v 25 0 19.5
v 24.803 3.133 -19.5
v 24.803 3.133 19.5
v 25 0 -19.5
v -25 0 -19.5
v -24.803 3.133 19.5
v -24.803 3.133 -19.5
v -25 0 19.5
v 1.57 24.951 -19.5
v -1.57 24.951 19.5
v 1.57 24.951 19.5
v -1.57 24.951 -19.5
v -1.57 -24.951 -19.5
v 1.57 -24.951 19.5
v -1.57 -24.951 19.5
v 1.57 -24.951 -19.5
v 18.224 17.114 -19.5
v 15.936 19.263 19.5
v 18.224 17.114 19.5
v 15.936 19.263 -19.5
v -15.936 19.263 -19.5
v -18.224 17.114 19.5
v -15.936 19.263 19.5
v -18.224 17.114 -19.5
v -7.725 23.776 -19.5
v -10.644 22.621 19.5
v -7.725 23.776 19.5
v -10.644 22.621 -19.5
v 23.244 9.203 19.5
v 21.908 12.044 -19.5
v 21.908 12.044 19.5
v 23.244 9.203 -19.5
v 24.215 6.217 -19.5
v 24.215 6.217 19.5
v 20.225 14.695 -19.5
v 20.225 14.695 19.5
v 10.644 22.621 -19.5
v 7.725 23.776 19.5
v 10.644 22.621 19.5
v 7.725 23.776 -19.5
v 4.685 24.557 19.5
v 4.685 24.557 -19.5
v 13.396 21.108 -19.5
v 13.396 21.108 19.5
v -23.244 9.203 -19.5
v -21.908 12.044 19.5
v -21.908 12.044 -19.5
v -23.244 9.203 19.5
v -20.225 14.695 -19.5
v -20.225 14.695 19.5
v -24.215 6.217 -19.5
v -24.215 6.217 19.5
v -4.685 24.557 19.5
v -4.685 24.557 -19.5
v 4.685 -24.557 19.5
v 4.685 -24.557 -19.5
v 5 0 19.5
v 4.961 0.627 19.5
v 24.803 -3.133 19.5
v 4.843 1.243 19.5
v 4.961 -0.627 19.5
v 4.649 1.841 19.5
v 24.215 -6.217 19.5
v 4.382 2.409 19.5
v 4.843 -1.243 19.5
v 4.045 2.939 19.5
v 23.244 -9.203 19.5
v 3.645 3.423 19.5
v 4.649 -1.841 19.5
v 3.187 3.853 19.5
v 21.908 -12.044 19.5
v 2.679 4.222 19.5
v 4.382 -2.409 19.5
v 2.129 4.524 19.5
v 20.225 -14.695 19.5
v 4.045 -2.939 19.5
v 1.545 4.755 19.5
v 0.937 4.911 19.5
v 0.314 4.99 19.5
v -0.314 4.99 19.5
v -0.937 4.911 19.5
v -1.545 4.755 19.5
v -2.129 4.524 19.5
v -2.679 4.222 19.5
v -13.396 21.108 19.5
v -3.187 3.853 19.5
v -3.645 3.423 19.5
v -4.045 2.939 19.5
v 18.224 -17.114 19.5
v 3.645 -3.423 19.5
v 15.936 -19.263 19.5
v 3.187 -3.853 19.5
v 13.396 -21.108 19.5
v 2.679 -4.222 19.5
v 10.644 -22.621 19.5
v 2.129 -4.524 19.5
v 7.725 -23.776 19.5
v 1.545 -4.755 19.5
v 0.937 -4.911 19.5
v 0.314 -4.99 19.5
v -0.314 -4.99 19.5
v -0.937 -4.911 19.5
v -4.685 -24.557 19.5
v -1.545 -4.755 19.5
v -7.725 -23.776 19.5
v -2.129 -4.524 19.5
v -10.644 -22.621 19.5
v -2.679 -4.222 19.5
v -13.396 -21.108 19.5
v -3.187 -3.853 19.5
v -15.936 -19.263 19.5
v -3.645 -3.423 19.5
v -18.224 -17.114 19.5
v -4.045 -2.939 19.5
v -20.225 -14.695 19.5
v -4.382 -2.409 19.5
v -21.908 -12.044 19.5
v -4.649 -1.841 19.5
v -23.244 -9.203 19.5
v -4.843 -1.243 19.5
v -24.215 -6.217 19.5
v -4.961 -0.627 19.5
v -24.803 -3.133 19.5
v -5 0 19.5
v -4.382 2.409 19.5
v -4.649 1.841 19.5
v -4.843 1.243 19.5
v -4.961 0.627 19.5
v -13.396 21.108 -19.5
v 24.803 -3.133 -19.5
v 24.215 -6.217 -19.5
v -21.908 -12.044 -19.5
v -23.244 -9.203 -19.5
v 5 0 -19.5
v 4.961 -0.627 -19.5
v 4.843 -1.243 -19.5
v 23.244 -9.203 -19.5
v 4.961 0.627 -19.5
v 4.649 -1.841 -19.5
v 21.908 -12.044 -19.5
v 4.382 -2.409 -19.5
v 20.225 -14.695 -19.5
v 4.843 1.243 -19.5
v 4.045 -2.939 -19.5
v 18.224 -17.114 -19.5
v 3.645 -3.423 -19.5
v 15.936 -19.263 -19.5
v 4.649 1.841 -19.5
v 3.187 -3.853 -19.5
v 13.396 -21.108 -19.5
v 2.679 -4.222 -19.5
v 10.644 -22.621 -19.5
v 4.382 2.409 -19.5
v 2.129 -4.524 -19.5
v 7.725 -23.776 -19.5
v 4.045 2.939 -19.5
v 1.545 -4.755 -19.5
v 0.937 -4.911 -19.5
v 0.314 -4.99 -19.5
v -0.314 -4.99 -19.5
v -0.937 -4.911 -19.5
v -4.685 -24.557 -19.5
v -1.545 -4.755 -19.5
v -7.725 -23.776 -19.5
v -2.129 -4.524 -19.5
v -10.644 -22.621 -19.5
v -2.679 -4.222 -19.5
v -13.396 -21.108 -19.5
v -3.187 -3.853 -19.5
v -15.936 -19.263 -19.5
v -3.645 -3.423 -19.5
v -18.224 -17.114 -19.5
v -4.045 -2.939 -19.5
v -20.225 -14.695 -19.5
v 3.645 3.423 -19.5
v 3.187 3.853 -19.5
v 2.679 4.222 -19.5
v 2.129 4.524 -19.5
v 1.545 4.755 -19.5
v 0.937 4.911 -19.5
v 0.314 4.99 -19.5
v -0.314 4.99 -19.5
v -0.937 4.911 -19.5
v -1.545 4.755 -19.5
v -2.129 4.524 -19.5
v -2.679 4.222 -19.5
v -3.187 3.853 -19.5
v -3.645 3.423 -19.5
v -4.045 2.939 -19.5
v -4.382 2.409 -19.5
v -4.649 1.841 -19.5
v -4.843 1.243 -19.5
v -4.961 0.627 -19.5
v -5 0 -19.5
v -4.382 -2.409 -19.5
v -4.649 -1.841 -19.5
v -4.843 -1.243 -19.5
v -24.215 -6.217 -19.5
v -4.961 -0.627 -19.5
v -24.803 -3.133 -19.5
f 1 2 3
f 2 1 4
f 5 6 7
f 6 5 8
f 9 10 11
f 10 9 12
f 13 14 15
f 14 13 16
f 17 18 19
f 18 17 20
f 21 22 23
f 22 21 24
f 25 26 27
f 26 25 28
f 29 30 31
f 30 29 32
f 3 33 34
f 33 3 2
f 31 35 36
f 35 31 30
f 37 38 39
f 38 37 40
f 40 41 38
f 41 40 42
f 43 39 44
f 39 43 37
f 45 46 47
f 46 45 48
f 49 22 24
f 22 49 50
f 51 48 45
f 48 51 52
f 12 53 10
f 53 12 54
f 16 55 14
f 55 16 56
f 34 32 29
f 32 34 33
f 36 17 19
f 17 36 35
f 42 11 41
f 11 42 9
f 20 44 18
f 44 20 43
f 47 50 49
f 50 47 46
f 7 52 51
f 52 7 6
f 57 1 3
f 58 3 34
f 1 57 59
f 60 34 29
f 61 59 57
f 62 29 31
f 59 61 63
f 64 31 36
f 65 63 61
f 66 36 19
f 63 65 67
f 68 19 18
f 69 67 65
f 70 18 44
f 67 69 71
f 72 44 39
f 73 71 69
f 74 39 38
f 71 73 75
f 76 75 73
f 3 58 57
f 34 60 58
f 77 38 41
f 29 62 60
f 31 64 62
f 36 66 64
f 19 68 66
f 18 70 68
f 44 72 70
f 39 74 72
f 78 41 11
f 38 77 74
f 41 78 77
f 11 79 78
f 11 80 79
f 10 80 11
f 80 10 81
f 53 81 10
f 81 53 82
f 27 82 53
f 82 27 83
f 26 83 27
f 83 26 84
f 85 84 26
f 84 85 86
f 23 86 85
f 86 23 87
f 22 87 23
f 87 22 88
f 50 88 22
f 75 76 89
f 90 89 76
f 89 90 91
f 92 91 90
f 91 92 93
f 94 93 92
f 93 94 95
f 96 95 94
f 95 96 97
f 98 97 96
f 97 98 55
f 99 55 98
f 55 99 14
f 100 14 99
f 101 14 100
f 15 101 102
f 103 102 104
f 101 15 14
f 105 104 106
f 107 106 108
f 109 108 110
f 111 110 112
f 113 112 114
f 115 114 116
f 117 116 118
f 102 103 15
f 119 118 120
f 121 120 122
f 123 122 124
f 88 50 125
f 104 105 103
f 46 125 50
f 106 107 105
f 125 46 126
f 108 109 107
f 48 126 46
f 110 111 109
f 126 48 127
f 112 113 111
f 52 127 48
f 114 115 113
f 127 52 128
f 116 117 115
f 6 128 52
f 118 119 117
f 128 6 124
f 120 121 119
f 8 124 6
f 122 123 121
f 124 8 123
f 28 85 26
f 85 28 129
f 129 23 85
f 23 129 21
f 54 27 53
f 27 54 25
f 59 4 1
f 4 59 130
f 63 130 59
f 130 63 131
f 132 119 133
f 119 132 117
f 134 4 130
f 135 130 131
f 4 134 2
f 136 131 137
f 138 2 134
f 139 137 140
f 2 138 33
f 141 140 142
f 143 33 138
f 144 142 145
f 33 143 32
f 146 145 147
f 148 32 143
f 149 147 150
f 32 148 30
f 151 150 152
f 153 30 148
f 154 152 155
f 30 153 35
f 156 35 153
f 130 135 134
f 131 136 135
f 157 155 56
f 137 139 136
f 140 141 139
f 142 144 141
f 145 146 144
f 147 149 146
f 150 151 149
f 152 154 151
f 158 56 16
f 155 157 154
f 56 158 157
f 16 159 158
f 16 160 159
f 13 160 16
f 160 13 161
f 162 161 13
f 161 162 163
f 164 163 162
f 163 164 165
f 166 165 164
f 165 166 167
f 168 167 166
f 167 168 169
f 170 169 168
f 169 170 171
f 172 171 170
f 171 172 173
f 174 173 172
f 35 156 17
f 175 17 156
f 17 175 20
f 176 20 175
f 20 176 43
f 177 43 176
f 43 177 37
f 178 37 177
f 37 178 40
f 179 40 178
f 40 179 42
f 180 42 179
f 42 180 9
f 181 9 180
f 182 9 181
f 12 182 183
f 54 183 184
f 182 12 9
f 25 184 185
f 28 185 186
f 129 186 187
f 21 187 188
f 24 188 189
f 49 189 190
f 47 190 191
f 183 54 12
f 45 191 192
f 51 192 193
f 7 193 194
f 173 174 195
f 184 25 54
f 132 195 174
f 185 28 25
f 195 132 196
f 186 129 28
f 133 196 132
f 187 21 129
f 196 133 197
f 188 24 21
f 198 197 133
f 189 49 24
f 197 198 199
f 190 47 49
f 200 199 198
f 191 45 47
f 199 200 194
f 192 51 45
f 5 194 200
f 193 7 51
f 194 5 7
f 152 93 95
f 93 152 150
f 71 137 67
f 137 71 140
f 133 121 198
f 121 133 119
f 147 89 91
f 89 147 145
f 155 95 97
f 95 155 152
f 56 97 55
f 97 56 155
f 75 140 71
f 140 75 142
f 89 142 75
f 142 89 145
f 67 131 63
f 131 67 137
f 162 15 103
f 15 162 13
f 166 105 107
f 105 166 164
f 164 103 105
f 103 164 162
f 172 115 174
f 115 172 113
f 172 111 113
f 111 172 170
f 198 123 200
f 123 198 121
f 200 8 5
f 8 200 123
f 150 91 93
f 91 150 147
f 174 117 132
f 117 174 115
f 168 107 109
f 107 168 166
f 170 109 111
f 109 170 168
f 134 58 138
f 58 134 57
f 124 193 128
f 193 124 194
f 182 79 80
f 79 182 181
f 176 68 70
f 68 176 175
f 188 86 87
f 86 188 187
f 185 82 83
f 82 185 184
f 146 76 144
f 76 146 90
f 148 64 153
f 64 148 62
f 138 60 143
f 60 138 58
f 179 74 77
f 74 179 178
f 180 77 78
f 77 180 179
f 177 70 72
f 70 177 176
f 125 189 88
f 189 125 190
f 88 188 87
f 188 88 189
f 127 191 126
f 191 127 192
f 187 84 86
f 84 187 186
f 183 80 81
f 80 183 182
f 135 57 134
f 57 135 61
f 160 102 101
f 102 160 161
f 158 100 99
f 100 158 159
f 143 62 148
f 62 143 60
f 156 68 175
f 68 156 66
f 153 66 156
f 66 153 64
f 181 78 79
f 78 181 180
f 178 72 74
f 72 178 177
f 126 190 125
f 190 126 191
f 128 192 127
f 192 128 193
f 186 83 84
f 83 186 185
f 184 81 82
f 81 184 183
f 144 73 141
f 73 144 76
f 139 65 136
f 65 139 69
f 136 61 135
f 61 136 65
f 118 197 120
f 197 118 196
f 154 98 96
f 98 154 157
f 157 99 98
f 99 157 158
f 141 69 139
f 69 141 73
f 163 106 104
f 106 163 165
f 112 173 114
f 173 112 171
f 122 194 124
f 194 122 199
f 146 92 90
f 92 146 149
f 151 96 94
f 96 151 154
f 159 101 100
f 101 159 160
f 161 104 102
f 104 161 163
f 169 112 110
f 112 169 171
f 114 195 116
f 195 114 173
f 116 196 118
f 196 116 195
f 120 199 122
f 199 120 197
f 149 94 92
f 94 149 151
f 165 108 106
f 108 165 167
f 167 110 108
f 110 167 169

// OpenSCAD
$fn = 50;


difference() {
	union() {
		translate(v = [0, 0, -19.5000000000]) {
			cylinder(h = 39, r = 25.0000000000);
		}
	}
	union() {
		translate(v = [0, 0, -100.0000000000]) {
			cylinder(h = 200, r = 5.0000000000);
		}
	}
}
